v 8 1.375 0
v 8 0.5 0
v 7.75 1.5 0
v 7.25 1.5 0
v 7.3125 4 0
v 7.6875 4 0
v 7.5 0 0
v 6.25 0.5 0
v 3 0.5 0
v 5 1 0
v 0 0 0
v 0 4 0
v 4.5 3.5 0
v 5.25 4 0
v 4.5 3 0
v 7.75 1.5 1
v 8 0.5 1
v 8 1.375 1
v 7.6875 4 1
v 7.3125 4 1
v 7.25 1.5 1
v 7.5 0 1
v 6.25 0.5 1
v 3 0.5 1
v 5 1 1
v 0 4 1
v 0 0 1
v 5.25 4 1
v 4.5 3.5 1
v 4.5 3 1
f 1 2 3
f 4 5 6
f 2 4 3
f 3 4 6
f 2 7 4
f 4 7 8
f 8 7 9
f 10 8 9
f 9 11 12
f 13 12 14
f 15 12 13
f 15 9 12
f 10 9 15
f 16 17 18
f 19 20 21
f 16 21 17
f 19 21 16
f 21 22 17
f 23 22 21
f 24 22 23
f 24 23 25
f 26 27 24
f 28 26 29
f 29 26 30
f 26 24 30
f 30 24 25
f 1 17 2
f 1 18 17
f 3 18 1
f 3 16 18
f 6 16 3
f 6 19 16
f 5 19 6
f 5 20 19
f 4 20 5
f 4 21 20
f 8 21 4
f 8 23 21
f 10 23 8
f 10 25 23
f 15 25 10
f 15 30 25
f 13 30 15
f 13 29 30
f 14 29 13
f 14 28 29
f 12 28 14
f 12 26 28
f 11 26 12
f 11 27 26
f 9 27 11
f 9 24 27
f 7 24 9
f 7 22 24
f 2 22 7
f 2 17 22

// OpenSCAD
//Thickness

neg=false;

tw=8; //Tank Width
th=4; //Tank Height

cw=.5; //Chimney Widh
ciw=.375; //Chimney Inner Width (outlet)
ch=2.5; //Chimney Height

nw=2;
nh=0;
fw=0;
fh=.5;

l0w=.5;
l0h=.5;
l1w=.25;
l1h=.125;
l4w=1;
l4h=1;
l5w=.5;
l5h=2;
l6w=.75;
l6h=.5;

//----

p0=[0,0];
p1=[tw-l0w,0];
p2=[tw,l0h];
p4=[tw-l1w,th-ch];
p3=[tw,p4[1]-l1h];
p5=[p4[0]-(cw-ciw)/2,th];
p6=[p4[0]-(cw+ciw)/2,th];
p7=[p4[0]-cw,th-ch];
p8=[p7[0]-l4w,p7[1]-l4h];
p12=[p7[0]-nw,th-nh];
p11=[p12[0]-l6w,p12[1]-l6h];
p10=[p11[0]-fw,p11[1]-fh];
p9=[p10[0]+l5w,p10[1]-l5h];
p13=[0,th];

//----

module posmod() {
linear_extrude(height = 1, center = false, convexity = 50, twist = 0, slices = 1, scale = 1) {
  polygon([p0,[3,.5],p1,p2,p3,p4,p5,p6,p7,p8,p9,p10,p11,p12,p13]);
}
}

//----

if (neg) {
  scale(1/.99,1/.99,1/.99) {
    translate([-.005,-.005,-.005]) {
      difference(){
        translate([.005,.005,.005]) {
          cube([tw+.25*.99,th*.99,.99],center = false);
        }
        posmod();
      }
    }
  }
} else {
posmod();
}
